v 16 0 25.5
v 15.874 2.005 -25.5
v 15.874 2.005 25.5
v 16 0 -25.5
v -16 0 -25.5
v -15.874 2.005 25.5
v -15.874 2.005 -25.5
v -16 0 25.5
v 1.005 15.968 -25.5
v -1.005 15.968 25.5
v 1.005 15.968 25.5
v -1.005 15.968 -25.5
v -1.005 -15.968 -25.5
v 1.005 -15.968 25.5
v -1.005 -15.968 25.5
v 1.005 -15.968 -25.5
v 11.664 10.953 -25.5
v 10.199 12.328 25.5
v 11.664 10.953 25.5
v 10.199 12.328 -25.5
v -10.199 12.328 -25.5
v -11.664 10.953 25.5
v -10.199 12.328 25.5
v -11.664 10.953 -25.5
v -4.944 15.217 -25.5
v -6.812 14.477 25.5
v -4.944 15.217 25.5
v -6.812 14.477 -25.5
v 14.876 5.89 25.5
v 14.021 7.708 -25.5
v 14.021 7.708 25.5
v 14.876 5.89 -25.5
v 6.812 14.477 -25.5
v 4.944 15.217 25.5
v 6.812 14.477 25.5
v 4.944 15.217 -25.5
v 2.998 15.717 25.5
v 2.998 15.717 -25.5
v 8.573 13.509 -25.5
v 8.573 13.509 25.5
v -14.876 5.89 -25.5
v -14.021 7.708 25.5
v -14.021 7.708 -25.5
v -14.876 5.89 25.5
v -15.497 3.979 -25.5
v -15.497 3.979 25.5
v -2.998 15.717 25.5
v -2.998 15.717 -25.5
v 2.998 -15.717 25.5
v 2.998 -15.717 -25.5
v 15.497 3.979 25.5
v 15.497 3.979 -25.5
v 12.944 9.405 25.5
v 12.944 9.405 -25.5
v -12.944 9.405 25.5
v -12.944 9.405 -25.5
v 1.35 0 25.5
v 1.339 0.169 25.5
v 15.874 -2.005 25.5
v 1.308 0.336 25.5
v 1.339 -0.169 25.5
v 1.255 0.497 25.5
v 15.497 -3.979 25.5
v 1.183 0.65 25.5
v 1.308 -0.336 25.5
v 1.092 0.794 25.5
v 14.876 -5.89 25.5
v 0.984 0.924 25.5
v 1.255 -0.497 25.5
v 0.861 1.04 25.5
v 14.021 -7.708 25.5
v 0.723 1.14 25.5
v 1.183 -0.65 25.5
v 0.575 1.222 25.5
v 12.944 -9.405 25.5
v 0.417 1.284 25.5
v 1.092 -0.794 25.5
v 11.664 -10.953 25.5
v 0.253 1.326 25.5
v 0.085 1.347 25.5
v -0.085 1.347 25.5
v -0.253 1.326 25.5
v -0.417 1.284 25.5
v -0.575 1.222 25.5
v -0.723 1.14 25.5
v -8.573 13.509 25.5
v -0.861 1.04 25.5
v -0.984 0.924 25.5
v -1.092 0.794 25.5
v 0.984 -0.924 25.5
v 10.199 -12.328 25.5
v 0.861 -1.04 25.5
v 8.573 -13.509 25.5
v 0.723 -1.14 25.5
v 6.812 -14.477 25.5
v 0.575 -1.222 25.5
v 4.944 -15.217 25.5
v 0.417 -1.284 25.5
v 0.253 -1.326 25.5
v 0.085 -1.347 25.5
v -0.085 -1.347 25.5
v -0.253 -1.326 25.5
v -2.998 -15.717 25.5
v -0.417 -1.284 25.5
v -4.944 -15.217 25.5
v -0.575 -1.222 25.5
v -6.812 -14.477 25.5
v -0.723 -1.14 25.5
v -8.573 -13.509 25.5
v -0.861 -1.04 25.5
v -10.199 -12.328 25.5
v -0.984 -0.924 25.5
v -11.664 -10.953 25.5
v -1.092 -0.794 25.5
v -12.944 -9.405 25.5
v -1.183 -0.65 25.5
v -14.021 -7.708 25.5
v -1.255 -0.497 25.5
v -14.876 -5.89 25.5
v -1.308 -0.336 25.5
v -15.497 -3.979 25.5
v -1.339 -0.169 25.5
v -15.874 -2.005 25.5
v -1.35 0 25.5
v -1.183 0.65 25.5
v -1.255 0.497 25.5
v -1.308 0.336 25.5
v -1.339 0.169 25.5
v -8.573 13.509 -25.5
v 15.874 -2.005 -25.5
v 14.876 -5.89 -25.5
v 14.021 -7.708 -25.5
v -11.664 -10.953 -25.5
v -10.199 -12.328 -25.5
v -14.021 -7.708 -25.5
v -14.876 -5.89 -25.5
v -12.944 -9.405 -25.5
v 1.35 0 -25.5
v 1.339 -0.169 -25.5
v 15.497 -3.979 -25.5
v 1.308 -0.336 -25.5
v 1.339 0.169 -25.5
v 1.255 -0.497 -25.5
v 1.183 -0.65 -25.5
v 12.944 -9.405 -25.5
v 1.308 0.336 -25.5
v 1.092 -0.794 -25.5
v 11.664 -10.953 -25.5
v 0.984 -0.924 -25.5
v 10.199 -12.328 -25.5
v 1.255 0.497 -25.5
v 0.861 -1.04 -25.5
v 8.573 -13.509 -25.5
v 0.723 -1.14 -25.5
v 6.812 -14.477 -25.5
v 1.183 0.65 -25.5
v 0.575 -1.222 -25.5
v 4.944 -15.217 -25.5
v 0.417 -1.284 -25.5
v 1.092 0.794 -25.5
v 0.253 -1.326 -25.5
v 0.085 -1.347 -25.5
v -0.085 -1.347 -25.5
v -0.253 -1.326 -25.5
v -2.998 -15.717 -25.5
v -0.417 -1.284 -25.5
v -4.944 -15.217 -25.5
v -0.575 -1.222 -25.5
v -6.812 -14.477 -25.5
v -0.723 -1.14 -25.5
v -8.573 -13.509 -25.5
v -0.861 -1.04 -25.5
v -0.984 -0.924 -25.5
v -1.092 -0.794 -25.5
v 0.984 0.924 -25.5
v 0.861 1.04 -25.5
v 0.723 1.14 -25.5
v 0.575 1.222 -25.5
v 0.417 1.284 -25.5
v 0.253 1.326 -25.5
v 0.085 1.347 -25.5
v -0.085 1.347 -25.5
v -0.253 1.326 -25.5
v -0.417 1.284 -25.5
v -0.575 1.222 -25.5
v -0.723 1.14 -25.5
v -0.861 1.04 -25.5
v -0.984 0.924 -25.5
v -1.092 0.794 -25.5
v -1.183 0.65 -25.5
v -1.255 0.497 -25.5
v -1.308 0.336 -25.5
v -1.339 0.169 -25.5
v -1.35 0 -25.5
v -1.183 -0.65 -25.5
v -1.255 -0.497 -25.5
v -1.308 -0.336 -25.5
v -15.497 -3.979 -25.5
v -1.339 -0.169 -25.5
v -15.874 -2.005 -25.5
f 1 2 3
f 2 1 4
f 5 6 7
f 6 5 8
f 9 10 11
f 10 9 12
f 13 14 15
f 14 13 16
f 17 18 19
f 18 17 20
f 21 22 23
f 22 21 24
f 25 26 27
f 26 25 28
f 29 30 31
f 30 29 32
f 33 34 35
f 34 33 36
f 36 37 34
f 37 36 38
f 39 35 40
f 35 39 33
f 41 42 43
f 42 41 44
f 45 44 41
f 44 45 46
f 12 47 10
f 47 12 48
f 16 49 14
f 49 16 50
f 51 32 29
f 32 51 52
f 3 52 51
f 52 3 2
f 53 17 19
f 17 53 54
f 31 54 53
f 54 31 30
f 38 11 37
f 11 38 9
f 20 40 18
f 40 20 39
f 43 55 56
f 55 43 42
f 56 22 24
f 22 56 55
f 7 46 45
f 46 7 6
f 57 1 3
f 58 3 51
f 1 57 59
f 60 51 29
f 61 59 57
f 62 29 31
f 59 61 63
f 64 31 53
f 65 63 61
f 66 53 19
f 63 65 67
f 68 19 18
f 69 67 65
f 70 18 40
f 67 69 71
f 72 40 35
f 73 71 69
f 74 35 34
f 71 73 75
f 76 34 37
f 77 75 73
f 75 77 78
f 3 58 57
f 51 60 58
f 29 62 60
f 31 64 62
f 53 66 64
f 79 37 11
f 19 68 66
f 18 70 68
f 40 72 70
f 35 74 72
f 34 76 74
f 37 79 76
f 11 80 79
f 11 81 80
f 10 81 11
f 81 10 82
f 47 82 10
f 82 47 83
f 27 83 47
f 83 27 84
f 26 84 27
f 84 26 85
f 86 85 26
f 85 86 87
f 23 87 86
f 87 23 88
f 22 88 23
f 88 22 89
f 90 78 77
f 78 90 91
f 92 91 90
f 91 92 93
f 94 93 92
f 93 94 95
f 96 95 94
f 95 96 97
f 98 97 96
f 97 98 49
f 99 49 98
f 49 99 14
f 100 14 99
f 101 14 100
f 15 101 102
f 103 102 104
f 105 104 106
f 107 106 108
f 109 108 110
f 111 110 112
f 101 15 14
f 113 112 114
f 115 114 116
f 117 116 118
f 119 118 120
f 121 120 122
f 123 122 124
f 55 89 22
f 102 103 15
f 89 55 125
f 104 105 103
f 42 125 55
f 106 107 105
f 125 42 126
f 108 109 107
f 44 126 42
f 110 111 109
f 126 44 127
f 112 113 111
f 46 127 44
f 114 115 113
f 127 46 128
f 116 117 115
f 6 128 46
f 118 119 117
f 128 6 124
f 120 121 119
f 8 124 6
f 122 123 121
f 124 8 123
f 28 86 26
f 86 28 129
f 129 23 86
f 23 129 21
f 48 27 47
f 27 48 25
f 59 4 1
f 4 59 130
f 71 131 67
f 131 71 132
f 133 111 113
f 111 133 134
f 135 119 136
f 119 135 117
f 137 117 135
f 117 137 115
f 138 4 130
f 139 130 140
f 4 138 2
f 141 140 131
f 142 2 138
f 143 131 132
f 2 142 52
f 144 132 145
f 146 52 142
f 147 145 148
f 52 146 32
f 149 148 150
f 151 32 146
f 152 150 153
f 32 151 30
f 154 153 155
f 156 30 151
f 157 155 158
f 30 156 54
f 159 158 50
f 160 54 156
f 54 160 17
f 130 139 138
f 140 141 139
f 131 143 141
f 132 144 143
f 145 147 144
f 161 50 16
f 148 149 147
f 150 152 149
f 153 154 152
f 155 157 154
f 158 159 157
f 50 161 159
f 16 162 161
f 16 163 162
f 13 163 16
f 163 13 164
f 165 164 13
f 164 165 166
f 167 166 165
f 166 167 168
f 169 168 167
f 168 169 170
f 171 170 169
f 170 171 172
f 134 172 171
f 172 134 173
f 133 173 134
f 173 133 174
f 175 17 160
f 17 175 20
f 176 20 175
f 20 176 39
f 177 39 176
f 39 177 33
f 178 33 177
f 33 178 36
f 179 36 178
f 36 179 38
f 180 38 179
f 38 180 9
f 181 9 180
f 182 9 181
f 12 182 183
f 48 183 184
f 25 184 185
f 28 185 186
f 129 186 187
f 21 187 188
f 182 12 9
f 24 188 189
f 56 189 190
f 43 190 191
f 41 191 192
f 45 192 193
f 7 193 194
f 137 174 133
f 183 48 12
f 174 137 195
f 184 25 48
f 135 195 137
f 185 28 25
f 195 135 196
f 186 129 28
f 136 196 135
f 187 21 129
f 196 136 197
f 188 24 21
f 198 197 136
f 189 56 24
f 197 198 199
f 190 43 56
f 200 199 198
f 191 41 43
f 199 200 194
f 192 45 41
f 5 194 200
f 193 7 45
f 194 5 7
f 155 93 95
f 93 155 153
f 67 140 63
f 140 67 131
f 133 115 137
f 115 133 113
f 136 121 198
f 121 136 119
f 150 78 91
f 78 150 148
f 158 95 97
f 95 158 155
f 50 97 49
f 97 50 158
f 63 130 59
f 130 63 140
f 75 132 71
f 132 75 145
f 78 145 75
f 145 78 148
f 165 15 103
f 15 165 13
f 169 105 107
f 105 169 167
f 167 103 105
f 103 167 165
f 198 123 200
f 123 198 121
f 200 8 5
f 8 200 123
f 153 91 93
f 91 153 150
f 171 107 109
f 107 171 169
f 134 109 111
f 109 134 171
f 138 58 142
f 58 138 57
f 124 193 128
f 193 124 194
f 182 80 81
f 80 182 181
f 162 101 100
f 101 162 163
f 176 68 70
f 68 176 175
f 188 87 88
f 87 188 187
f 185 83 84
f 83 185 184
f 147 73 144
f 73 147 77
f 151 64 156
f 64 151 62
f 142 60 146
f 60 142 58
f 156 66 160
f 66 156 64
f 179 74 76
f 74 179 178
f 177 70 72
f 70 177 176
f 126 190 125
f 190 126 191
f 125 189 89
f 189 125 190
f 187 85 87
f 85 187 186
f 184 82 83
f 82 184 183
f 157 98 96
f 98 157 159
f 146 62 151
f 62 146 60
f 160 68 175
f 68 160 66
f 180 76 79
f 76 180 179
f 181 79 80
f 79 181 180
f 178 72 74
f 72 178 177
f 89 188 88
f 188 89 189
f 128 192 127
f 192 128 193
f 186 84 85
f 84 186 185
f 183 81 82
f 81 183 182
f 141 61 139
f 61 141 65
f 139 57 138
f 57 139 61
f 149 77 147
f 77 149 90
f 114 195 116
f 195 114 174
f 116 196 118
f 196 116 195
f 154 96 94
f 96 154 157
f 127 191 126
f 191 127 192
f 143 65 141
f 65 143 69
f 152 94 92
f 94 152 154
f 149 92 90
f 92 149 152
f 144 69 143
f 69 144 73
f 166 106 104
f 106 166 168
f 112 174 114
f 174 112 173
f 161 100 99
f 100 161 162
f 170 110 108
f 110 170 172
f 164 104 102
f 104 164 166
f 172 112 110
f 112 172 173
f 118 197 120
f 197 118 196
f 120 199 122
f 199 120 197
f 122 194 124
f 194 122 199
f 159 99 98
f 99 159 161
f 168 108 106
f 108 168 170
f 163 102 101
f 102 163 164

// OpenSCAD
$fn = 50;


difference() {
	union() {
		translate(v = [0, 0, -25.5000000000]) {
			cylinder(h = 51, r = 16.0000000000);
		}
	}
	union() {
		translate(v = [0, 0, -100.0000000000]) {
			cylinder(h = 200, r = 1.3500000000);
		}
	}
}
